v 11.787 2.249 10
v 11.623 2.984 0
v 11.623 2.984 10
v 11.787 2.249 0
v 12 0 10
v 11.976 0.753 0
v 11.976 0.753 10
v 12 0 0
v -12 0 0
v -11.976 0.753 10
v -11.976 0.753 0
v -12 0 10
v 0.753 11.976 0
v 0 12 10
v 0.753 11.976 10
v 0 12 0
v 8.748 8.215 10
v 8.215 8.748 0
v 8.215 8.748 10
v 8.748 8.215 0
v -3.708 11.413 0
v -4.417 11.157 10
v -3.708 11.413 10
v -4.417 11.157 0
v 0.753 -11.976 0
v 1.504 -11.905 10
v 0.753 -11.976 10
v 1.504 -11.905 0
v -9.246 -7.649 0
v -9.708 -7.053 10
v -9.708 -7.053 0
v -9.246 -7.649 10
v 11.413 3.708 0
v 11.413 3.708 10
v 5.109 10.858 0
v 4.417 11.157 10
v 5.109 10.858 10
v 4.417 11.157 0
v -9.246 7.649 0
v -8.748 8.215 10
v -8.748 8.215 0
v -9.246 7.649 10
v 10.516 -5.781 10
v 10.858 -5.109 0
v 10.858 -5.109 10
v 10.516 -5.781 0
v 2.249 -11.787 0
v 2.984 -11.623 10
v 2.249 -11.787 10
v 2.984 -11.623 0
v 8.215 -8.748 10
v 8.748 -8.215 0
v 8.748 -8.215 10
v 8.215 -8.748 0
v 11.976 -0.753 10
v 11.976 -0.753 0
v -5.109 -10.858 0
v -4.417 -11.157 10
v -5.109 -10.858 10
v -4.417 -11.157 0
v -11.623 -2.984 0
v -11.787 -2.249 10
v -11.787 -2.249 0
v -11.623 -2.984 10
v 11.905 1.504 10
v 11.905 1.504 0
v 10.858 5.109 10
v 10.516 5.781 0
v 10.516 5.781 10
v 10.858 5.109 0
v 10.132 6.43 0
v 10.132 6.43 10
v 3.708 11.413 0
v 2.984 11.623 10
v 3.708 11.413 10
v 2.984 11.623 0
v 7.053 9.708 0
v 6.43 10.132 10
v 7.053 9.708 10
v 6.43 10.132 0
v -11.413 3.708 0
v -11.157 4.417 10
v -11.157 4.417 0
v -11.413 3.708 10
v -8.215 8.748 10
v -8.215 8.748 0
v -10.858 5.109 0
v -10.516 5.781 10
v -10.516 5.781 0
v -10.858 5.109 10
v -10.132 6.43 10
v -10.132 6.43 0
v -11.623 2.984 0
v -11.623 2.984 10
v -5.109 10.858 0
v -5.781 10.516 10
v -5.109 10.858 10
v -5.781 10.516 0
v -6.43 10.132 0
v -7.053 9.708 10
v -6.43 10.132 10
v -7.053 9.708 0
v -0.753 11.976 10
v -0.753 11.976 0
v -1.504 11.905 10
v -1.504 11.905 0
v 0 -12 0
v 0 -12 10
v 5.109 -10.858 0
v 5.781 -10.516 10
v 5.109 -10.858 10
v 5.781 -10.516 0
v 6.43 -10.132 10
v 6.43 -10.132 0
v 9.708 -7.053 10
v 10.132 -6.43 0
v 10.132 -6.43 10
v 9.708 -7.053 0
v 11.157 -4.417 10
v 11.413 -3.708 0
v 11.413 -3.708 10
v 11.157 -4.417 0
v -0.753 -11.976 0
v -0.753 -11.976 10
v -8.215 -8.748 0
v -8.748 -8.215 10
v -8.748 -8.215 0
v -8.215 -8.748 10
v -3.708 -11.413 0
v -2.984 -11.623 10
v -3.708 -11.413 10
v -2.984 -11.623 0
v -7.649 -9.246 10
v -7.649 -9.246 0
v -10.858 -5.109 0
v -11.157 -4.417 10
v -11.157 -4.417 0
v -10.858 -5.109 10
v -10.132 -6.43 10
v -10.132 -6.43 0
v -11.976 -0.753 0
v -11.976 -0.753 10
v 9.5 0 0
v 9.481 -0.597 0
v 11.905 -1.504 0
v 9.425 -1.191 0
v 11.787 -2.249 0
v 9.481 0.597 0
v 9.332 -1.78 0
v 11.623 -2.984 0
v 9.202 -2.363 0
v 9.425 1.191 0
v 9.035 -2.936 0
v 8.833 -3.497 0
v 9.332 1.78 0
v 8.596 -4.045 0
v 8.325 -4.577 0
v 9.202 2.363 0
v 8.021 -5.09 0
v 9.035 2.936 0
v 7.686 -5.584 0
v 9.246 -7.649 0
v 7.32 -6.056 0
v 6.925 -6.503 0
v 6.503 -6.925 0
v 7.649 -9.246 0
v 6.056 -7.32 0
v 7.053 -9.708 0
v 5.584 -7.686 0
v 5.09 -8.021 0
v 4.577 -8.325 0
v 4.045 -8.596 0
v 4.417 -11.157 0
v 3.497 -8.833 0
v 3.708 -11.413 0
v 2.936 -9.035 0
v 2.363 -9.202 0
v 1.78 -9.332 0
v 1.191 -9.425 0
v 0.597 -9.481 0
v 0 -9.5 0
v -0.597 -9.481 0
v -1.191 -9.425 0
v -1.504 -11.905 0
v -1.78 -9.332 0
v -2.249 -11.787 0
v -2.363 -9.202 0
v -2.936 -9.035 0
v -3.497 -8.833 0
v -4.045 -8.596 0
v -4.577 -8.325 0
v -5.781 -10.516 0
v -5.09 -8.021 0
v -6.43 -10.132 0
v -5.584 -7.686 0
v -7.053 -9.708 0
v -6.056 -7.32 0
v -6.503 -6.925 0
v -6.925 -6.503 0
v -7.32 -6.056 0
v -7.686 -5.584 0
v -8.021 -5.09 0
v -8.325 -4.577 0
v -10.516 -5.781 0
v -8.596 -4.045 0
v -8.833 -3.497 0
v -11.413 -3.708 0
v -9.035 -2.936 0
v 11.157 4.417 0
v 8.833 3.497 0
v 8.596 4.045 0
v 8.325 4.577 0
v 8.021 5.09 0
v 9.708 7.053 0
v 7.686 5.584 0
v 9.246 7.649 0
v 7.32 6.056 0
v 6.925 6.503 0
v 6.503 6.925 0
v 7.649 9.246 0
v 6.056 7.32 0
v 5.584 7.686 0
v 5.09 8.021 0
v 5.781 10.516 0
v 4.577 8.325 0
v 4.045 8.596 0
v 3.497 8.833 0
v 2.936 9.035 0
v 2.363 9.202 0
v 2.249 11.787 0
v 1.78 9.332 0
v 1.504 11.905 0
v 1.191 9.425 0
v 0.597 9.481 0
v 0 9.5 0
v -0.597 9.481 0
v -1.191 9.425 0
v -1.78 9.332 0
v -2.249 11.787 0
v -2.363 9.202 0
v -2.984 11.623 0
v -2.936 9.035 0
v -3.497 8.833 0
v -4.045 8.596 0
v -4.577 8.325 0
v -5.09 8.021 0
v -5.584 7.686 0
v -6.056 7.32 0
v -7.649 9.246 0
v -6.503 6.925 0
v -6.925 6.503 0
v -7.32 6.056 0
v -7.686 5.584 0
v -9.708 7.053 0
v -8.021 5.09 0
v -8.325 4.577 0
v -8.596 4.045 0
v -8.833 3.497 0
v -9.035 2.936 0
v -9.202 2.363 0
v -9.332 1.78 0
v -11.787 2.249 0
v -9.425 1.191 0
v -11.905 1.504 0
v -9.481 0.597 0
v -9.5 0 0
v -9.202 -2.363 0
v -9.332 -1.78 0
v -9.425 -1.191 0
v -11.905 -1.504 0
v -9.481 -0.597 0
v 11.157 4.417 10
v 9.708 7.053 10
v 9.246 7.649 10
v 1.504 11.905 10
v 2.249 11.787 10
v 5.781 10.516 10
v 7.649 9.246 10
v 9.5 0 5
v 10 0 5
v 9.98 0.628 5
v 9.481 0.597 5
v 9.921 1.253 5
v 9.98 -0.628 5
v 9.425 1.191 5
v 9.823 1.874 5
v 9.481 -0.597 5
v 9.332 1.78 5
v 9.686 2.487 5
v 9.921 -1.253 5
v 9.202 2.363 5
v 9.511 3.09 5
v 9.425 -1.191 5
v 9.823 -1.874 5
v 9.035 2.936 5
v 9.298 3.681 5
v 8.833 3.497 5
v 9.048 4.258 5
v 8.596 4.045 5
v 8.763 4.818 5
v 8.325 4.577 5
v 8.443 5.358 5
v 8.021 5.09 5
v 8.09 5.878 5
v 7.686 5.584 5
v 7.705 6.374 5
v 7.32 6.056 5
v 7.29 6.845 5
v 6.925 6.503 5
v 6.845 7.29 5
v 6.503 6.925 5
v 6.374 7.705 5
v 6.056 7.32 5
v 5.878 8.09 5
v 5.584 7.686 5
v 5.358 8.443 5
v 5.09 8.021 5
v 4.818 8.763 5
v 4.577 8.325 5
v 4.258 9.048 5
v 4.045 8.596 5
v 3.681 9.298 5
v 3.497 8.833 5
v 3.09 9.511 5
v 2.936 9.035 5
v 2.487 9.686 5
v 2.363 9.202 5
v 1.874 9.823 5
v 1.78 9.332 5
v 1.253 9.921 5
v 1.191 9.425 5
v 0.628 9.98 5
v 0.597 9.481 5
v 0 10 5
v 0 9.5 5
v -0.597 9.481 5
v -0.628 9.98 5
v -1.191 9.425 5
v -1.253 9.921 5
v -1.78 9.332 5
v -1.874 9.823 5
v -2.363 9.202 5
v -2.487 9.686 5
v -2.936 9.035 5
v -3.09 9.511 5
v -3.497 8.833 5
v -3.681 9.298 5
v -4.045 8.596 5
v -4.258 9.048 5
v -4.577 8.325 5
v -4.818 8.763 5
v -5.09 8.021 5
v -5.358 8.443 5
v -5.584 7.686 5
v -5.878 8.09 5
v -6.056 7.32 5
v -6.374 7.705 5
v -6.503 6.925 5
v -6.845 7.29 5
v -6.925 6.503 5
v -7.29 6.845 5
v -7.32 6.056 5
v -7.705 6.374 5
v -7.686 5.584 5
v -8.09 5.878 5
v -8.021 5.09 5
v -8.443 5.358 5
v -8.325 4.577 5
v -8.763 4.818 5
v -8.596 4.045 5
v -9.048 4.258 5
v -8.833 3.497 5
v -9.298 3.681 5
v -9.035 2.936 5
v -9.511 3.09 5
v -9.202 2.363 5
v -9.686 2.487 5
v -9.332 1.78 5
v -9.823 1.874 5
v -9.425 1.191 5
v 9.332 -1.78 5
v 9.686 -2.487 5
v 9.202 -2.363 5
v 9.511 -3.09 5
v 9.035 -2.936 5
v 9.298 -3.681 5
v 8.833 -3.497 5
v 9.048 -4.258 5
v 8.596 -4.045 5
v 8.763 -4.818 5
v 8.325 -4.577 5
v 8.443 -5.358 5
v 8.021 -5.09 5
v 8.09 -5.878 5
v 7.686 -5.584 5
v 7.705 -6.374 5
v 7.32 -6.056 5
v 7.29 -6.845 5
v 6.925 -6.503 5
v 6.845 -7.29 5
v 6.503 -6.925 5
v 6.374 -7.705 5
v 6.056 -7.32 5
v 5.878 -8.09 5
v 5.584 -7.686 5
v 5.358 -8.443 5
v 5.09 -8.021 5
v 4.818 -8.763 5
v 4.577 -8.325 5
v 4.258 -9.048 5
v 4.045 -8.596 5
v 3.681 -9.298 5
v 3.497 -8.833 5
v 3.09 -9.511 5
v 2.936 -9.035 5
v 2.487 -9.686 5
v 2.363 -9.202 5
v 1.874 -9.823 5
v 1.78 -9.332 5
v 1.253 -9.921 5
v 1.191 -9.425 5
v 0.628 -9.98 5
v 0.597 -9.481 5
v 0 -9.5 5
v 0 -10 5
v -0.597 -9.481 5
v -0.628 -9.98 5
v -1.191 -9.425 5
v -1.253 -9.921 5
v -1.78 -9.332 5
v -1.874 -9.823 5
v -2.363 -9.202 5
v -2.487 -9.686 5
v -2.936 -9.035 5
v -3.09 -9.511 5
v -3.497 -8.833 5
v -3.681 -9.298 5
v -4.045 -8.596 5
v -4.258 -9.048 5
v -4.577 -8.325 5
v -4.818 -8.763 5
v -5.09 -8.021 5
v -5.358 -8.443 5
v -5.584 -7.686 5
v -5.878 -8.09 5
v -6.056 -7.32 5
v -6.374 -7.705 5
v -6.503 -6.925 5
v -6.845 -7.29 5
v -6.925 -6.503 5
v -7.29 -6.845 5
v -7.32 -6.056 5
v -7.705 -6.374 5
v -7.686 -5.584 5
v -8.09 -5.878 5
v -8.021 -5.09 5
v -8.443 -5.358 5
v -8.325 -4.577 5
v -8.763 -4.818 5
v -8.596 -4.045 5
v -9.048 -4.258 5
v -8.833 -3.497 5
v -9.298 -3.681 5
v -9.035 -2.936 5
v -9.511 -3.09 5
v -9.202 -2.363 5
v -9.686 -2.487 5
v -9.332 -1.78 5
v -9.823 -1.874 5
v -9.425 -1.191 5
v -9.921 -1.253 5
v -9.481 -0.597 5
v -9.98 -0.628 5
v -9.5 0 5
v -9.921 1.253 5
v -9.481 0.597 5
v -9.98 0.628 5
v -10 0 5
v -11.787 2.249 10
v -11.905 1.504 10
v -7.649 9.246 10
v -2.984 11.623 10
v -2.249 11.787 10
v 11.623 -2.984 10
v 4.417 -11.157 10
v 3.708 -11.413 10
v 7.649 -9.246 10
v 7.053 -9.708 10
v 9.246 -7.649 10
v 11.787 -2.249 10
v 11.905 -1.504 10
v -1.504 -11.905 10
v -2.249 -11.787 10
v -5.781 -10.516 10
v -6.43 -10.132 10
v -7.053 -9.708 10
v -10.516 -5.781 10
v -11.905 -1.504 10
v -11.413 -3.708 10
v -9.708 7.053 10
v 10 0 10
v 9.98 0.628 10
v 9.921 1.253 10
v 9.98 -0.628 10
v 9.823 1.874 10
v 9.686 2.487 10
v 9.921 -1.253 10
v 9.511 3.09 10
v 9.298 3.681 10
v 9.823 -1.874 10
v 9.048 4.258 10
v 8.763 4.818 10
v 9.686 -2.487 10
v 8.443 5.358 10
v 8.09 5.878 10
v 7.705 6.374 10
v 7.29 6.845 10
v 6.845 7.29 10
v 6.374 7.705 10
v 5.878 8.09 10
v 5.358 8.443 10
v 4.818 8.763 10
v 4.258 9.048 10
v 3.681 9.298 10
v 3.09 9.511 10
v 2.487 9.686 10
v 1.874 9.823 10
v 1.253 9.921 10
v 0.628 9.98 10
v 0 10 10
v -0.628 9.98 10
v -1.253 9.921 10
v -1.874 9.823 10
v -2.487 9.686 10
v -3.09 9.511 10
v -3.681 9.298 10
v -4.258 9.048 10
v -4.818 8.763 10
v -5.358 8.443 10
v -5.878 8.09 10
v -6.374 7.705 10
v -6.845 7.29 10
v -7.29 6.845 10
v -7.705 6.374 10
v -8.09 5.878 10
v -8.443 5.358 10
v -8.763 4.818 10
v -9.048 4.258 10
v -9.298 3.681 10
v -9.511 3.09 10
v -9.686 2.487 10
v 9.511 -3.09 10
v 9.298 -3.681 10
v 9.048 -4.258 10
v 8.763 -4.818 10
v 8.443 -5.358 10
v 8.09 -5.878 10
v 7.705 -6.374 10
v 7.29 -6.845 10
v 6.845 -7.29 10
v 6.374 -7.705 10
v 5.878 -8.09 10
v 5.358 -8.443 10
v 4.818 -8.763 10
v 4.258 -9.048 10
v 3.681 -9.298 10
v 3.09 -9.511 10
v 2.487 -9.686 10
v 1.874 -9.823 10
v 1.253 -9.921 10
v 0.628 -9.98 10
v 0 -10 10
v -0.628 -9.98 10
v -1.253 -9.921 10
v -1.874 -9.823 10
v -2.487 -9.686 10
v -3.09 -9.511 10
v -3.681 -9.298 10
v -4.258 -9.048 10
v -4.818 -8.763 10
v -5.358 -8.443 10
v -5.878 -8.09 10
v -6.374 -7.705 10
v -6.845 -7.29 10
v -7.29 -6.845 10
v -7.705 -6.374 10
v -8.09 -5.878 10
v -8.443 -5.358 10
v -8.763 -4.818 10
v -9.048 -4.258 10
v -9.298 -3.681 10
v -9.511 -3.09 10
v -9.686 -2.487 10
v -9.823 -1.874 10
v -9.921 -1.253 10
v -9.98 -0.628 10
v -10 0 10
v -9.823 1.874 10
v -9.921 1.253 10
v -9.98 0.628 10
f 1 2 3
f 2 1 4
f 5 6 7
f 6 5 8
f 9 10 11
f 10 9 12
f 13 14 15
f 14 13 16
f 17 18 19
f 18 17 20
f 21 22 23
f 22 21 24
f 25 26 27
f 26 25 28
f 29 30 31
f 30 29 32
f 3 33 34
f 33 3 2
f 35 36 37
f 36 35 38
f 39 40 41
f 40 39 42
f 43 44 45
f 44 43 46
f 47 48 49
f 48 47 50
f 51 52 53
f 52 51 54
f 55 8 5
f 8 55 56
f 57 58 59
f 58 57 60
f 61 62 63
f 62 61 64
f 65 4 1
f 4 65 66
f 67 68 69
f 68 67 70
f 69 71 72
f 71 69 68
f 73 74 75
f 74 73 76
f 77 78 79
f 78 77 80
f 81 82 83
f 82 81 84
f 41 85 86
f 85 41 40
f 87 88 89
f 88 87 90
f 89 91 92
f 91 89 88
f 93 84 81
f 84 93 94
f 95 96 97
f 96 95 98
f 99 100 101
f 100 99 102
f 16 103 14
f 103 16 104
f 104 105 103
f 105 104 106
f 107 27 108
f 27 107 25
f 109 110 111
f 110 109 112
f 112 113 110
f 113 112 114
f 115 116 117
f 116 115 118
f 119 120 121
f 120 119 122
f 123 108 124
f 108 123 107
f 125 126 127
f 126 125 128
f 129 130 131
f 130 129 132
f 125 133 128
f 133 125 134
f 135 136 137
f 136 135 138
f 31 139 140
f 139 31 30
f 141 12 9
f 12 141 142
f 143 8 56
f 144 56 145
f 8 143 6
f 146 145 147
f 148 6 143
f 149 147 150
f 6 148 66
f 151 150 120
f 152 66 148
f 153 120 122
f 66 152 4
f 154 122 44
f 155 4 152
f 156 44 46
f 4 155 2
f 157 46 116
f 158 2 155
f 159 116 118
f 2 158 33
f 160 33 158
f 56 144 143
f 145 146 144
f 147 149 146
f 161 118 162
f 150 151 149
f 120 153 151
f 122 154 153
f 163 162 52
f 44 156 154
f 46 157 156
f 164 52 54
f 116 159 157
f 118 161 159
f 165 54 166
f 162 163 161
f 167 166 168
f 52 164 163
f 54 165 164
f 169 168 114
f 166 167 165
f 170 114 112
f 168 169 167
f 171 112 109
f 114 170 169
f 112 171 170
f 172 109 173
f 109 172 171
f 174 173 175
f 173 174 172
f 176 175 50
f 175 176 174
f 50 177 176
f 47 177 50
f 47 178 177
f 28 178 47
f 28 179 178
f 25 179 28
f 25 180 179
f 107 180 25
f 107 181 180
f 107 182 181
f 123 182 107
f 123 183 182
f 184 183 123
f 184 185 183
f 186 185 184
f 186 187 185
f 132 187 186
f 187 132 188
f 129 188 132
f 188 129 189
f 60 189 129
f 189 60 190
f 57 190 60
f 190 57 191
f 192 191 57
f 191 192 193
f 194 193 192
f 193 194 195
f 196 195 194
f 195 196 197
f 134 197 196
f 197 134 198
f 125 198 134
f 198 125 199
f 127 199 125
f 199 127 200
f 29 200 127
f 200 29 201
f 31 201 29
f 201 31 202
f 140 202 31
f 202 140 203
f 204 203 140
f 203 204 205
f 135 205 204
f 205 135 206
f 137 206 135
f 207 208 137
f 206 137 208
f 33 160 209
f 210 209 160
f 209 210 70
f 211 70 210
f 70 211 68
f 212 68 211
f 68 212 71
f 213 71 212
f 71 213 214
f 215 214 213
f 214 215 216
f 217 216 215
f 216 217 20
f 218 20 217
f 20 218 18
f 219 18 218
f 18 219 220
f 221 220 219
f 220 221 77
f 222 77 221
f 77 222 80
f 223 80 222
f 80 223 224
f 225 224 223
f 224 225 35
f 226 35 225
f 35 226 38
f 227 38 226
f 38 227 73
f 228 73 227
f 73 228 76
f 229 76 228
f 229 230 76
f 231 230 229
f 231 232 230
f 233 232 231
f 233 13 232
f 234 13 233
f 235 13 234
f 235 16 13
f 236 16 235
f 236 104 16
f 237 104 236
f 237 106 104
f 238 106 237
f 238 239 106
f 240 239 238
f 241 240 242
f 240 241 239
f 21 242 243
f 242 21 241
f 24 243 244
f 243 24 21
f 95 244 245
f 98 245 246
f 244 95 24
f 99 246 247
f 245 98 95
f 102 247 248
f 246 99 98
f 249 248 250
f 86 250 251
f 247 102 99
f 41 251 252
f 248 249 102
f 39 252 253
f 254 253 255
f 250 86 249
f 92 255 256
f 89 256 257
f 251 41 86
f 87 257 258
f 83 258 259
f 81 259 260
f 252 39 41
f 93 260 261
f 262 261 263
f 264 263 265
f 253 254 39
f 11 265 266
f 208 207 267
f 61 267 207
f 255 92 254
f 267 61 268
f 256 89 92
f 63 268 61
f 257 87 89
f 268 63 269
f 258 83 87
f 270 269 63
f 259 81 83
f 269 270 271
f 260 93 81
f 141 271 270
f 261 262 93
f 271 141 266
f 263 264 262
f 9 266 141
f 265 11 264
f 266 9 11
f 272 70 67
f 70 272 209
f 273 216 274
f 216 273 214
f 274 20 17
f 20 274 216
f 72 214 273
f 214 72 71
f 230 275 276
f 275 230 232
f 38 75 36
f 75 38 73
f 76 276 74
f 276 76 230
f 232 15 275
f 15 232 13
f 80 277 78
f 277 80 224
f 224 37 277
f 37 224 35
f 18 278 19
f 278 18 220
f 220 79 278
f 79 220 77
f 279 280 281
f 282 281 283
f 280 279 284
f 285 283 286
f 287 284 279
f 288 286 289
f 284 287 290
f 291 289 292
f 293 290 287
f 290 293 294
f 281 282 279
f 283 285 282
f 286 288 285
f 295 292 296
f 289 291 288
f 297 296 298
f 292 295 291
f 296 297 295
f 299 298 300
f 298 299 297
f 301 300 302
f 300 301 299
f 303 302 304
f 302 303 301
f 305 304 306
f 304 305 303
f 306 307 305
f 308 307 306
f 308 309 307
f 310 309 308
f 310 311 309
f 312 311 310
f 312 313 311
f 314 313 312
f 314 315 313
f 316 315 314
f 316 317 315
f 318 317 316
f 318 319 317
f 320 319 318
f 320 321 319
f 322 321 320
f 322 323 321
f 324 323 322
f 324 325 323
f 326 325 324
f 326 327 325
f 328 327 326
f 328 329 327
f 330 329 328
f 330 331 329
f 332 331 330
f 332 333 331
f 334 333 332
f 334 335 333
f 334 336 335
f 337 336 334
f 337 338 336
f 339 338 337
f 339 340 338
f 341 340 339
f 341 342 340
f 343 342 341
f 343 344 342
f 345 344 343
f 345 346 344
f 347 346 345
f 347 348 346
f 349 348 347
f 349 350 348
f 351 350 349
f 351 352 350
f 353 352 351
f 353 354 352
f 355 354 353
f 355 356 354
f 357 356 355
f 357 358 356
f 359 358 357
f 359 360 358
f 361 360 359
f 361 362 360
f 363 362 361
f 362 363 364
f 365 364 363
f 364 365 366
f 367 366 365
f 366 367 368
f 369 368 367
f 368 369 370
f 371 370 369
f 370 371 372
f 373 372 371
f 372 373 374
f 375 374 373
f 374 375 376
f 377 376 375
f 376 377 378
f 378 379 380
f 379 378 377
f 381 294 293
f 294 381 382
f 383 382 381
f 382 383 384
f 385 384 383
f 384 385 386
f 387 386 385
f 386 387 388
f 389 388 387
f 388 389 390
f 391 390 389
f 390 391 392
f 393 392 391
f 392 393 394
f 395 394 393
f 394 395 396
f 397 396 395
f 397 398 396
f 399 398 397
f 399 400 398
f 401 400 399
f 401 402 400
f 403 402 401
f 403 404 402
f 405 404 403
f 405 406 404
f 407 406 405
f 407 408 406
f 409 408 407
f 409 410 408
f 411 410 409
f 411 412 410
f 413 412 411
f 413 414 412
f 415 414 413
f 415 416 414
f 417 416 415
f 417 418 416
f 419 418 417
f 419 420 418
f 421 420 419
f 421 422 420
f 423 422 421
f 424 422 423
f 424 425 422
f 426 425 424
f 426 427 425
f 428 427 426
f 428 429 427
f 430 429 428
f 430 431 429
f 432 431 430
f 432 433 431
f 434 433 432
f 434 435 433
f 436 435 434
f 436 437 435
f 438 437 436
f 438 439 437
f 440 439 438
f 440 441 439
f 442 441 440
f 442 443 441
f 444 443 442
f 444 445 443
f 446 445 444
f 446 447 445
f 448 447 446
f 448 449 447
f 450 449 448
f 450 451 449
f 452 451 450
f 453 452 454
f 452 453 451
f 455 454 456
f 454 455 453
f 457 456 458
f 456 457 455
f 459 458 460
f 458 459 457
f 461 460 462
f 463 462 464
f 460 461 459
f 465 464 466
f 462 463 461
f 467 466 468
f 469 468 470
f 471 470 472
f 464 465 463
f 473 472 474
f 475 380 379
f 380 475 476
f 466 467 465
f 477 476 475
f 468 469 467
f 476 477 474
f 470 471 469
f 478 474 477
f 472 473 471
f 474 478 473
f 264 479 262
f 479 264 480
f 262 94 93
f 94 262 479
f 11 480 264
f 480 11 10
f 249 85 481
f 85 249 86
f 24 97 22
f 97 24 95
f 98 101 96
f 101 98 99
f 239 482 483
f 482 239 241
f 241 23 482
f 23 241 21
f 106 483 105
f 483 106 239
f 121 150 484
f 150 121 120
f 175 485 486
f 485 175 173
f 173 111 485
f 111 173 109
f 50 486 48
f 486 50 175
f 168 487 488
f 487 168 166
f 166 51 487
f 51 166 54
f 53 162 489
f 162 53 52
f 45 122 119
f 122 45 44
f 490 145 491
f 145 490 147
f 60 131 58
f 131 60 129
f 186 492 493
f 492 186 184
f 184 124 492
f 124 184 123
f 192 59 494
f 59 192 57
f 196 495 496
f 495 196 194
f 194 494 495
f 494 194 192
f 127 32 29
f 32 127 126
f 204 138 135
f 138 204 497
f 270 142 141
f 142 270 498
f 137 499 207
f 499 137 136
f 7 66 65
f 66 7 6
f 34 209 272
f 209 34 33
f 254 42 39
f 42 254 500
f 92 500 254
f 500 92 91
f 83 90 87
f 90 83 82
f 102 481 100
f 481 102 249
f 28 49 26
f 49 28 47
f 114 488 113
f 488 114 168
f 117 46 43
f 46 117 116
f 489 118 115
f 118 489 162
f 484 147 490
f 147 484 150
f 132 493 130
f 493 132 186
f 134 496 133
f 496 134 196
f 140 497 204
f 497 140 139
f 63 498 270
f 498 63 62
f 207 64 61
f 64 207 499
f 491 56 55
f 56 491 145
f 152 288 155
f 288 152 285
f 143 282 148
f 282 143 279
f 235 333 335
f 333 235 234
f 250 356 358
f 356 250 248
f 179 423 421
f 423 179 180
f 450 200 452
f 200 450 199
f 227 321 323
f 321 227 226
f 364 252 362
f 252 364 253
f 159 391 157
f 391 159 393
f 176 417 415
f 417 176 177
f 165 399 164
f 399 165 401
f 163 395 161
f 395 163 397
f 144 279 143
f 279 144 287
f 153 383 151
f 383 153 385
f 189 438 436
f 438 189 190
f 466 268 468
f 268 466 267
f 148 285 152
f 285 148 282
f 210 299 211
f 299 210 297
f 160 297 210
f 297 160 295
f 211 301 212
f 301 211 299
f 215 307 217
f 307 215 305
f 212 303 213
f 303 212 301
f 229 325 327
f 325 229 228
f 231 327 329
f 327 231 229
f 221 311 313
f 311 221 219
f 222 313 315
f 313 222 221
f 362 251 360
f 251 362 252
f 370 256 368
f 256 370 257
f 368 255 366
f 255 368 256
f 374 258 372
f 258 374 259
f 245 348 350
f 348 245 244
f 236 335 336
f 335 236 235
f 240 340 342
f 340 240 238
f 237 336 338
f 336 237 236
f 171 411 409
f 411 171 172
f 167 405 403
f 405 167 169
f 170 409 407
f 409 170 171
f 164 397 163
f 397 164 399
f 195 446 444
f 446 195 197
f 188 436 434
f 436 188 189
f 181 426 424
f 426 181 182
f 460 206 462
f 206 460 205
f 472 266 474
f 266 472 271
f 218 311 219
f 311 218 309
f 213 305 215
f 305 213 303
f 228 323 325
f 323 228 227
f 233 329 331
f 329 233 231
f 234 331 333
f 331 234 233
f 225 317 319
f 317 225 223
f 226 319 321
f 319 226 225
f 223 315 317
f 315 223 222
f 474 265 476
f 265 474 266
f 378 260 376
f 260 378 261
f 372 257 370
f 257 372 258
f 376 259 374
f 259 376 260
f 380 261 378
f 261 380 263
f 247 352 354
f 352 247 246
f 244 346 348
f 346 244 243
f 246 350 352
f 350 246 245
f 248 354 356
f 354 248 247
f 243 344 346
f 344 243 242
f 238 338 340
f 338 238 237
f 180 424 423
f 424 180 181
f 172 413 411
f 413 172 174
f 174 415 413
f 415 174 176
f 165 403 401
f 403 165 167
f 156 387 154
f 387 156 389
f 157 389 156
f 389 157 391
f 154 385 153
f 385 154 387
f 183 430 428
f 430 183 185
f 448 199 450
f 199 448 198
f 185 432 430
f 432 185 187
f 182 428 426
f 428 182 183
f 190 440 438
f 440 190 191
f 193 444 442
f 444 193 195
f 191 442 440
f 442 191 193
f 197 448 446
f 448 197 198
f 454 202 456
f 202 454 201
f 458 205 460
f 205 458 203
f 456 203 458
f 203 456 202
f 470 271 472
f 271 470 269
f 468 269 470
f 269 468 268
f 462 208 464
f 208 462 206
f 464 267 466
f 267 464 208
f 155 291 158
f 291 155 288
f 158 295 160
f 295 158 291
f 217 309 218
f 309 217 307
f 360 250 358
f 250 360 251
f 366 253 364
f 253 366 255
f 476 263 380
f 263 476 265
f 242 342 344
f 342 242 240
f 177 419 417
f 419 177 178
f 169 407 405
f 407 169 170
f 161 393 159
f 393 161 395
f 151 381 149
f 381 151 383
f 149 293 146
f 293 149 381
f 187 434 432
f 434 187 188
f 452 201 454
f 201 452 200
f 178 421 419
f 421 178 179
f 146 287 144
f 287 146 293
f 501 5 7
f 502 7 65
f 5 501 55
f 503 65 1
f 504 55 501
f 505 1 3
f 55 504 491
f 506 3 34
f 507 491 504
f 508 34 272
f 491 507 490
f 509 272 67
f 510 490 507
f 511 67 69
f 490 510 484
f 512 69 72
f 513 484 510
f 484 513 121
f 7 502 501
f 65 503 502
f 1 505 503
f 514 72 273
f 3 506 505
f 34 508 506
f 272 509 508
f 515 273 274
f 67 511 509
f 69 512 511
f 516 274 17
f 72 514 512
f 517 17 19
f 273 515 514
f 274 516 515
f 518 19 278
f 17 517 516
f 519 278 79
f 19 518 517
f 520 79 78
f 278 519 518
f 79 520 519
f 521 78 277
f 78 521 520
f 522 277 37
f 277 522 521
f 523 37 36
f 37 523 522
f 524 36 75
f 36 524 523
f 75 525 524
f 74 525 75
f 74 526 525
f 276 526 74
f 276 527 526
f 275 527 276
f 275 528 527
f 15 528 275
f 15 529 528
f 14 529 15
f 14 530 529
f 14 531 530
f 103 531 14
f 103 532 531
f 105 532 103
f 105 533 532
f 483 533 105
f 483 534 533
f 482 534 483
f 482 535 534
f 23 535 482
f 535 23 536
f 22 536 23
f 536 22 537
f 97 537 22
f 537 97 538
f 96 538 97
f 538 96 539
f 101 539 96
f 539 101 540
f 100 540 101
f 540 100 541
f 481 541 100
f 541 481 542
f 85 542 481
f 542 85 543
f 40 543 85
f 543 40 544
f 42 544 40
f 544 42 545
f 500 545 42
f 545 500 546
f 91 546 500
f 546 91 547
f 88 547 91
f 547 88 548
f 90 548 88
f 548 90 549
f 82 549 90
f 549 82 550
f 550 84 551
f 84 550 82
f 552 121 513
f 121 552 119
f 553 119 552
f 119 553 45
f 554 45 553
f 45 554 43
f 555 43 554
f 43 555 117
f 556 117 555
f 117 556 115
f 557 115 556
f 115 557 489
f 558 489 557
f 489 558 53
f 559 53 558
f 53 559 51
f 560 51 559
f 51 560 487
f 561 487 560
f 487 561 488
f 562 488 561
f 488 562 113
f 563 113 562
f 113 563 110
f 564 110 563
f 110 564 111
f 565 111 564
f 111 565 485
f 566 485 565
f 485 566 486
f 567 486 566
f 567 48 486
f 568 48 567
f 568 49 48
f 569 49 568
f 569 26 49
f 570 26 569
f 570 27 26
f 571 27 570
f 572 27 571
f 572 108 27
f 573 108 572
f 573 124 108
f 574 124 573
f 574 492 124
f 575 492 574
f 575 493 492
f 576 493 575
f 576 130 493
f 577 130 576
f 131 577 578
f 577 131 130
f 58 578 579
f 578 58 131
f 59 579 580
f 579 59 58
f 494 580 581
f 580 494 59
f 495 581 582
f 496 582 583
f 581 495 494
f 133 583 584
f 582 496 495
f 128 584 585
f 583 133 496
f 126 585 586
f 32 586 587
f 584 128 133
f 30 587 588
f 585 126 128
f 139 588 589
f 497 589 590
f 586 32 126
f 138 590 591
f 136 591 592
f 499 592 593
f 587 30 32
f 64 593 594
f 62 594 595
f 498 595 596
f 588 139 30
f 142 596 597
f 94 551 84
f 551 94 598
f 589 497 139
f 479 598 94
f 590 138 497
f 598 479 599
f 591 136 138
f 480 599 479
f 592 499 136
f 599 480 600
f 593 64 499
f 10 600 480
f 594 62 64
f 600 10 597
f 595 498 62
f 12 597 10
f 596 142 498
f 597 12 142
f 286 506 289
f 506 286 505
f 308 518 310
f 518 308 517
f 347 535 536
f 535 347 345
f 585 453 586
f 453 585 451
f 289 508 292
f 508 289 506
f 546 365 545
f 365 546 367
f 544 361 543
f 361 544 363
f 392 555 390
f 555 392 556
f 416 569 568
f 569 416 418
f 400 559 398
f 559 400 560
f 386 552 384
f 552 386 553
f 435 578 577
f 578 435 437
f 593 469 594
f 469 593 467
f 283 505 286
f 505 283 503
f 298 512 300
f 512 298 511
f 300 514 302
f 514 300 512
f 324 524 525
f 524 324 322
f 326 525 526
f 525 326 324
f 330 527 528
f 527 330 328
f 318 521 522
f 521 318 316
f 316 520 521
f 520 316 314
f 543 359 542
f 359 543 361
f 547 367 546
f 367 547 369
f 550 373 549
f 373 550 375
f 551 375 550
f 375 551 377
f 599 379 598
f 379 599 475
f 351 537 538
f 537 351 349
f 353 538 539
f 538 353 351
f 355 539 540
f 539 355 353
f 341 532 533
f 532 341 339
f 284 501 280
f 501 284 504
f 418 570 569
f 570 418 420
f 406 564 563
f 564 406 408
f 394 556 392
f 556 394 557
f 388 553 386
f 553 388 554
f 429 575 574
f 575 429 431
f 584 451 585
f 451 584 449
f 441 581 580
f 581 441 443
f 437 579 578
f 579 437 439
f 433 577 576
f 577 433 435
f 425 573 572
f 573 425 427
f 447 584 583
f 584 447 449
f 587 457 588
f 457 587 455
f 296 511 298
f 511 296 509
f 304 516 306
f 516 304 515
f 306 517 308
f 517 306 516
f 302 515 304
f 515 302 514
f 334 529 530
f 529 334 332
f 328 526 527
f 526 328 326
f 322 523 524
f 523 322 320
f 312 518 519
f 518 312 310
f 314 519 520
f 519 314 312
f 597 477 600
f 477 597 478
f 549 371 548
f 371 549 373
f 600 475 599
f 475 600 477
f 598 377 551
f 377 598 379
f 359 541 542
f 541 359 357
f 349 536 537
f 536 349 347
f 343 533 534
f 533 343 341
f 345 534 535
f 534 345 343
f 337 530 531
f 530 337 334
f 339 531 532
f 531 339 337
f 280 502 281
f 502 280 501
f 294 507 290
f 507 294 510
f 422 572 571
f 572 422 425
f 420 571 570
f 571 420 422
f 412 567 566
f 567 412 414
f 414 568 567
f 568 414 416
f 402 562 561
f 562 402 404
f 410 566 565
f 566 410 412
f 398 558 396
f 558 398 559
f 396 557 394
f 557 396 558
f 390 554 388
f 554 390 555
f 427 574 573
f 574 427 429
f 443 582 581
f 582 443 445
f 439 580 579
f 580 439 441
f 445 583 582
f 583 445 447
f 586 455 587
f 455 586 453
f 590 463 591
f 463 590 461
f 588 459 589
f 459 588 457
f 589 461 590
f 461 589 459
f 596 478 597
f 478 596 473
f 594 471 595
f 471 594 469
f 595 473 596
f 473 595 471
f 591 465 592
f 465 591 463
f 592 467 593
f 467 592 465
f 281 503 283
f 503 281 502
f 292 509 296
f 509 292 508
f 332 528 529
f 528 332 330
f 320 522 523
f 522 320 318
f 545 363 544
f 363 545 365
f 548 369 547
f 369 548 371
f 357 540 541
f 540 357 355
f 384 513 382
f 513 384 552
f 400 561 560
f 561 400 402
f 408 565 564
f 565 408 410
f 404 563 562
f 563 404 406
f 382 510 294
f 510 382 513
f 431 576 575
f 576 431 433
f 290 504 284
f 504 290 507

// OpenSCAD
$fn=100;

difference(){
    cylinder(5,12,12);
    translate([0,0,-1])
    cylinder(12,9.5,9.5);
}
translate([0,0,5])
difference(){
    cylinder(5,12,12);
    translate([0,0,-1])
    cylinder(12,10,10);
}
